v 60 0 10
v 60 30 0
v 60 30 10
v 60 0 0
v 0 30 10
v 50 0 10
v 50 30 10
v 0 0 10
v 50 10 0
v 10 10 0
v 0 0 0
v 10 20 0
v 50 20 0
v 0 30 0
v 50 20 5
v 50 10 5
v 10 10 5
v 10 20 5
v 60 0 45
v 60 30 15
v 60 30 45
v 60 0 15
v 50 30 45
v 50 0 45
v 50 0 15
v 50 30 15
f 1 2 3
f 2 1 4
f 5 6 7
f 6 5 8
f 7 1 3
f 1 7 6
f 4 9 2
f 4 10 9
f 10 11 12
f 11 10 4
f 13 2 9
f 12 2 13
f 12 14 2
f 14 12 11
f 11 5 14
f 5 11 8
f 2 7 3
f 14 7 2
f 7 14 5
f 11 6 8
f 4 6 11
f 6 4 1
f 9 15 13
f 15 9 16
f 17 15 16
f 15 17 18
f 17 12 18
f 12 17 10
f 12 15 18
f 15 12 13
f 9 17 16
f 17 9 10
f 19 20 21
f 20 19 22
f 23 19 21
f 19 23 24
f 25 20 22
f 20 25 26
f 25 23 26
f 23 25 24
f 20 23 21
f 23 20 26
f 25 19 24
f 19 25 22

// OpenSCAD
// Base block
module base_block() {
    difference() {
        // Main rectangular block
        cube([60, 30, 10], center = false);
        // Recessed groove
        translate([10, 10, 0])
            cube([40, 10, 5], center = false);
        // Raised section
        translate([50, 0, 10])
            cube([10, 30, 5], center = false);
    }
}

// Vertical support
module vertical_support() {
    translate([50, 0, 15]) {
        cube([10, 30, 30], center = false);
    }
}

// Angled connector
module angled_connector() {
    translate([40, 0, 10]) {
        polyhedron(
            points = [
                [0, 0, 0], [10, 0, 0], [10, 30, 0], [0, 30, 0], // Base rectangle
                [0, 0, 15], [10, 0, 15], [10, 30, 15], [0, 30, 15]  // Top rectangle
            ],
            faces = [
                [0, 1, 5, 4], [1, 2, 6, 5], [2, 3, 7, 6], [3, 0, 4, 7], // Side faces
                [4, 5, 6, 7], // Top face
                [0, 1, 2, 3]  // Bottom face
            ]
        );
    }
}

// Flat plate
module flat_plate() {
    translate([10, 10, 5]) {
        cube([40, 10, 1], center = false);
    }
}

// Assembly
module assembly() {
    base_block();
    vertical_support();
    angled_connector();
    flat_plate();
}

// Render the assembly
assembly();
